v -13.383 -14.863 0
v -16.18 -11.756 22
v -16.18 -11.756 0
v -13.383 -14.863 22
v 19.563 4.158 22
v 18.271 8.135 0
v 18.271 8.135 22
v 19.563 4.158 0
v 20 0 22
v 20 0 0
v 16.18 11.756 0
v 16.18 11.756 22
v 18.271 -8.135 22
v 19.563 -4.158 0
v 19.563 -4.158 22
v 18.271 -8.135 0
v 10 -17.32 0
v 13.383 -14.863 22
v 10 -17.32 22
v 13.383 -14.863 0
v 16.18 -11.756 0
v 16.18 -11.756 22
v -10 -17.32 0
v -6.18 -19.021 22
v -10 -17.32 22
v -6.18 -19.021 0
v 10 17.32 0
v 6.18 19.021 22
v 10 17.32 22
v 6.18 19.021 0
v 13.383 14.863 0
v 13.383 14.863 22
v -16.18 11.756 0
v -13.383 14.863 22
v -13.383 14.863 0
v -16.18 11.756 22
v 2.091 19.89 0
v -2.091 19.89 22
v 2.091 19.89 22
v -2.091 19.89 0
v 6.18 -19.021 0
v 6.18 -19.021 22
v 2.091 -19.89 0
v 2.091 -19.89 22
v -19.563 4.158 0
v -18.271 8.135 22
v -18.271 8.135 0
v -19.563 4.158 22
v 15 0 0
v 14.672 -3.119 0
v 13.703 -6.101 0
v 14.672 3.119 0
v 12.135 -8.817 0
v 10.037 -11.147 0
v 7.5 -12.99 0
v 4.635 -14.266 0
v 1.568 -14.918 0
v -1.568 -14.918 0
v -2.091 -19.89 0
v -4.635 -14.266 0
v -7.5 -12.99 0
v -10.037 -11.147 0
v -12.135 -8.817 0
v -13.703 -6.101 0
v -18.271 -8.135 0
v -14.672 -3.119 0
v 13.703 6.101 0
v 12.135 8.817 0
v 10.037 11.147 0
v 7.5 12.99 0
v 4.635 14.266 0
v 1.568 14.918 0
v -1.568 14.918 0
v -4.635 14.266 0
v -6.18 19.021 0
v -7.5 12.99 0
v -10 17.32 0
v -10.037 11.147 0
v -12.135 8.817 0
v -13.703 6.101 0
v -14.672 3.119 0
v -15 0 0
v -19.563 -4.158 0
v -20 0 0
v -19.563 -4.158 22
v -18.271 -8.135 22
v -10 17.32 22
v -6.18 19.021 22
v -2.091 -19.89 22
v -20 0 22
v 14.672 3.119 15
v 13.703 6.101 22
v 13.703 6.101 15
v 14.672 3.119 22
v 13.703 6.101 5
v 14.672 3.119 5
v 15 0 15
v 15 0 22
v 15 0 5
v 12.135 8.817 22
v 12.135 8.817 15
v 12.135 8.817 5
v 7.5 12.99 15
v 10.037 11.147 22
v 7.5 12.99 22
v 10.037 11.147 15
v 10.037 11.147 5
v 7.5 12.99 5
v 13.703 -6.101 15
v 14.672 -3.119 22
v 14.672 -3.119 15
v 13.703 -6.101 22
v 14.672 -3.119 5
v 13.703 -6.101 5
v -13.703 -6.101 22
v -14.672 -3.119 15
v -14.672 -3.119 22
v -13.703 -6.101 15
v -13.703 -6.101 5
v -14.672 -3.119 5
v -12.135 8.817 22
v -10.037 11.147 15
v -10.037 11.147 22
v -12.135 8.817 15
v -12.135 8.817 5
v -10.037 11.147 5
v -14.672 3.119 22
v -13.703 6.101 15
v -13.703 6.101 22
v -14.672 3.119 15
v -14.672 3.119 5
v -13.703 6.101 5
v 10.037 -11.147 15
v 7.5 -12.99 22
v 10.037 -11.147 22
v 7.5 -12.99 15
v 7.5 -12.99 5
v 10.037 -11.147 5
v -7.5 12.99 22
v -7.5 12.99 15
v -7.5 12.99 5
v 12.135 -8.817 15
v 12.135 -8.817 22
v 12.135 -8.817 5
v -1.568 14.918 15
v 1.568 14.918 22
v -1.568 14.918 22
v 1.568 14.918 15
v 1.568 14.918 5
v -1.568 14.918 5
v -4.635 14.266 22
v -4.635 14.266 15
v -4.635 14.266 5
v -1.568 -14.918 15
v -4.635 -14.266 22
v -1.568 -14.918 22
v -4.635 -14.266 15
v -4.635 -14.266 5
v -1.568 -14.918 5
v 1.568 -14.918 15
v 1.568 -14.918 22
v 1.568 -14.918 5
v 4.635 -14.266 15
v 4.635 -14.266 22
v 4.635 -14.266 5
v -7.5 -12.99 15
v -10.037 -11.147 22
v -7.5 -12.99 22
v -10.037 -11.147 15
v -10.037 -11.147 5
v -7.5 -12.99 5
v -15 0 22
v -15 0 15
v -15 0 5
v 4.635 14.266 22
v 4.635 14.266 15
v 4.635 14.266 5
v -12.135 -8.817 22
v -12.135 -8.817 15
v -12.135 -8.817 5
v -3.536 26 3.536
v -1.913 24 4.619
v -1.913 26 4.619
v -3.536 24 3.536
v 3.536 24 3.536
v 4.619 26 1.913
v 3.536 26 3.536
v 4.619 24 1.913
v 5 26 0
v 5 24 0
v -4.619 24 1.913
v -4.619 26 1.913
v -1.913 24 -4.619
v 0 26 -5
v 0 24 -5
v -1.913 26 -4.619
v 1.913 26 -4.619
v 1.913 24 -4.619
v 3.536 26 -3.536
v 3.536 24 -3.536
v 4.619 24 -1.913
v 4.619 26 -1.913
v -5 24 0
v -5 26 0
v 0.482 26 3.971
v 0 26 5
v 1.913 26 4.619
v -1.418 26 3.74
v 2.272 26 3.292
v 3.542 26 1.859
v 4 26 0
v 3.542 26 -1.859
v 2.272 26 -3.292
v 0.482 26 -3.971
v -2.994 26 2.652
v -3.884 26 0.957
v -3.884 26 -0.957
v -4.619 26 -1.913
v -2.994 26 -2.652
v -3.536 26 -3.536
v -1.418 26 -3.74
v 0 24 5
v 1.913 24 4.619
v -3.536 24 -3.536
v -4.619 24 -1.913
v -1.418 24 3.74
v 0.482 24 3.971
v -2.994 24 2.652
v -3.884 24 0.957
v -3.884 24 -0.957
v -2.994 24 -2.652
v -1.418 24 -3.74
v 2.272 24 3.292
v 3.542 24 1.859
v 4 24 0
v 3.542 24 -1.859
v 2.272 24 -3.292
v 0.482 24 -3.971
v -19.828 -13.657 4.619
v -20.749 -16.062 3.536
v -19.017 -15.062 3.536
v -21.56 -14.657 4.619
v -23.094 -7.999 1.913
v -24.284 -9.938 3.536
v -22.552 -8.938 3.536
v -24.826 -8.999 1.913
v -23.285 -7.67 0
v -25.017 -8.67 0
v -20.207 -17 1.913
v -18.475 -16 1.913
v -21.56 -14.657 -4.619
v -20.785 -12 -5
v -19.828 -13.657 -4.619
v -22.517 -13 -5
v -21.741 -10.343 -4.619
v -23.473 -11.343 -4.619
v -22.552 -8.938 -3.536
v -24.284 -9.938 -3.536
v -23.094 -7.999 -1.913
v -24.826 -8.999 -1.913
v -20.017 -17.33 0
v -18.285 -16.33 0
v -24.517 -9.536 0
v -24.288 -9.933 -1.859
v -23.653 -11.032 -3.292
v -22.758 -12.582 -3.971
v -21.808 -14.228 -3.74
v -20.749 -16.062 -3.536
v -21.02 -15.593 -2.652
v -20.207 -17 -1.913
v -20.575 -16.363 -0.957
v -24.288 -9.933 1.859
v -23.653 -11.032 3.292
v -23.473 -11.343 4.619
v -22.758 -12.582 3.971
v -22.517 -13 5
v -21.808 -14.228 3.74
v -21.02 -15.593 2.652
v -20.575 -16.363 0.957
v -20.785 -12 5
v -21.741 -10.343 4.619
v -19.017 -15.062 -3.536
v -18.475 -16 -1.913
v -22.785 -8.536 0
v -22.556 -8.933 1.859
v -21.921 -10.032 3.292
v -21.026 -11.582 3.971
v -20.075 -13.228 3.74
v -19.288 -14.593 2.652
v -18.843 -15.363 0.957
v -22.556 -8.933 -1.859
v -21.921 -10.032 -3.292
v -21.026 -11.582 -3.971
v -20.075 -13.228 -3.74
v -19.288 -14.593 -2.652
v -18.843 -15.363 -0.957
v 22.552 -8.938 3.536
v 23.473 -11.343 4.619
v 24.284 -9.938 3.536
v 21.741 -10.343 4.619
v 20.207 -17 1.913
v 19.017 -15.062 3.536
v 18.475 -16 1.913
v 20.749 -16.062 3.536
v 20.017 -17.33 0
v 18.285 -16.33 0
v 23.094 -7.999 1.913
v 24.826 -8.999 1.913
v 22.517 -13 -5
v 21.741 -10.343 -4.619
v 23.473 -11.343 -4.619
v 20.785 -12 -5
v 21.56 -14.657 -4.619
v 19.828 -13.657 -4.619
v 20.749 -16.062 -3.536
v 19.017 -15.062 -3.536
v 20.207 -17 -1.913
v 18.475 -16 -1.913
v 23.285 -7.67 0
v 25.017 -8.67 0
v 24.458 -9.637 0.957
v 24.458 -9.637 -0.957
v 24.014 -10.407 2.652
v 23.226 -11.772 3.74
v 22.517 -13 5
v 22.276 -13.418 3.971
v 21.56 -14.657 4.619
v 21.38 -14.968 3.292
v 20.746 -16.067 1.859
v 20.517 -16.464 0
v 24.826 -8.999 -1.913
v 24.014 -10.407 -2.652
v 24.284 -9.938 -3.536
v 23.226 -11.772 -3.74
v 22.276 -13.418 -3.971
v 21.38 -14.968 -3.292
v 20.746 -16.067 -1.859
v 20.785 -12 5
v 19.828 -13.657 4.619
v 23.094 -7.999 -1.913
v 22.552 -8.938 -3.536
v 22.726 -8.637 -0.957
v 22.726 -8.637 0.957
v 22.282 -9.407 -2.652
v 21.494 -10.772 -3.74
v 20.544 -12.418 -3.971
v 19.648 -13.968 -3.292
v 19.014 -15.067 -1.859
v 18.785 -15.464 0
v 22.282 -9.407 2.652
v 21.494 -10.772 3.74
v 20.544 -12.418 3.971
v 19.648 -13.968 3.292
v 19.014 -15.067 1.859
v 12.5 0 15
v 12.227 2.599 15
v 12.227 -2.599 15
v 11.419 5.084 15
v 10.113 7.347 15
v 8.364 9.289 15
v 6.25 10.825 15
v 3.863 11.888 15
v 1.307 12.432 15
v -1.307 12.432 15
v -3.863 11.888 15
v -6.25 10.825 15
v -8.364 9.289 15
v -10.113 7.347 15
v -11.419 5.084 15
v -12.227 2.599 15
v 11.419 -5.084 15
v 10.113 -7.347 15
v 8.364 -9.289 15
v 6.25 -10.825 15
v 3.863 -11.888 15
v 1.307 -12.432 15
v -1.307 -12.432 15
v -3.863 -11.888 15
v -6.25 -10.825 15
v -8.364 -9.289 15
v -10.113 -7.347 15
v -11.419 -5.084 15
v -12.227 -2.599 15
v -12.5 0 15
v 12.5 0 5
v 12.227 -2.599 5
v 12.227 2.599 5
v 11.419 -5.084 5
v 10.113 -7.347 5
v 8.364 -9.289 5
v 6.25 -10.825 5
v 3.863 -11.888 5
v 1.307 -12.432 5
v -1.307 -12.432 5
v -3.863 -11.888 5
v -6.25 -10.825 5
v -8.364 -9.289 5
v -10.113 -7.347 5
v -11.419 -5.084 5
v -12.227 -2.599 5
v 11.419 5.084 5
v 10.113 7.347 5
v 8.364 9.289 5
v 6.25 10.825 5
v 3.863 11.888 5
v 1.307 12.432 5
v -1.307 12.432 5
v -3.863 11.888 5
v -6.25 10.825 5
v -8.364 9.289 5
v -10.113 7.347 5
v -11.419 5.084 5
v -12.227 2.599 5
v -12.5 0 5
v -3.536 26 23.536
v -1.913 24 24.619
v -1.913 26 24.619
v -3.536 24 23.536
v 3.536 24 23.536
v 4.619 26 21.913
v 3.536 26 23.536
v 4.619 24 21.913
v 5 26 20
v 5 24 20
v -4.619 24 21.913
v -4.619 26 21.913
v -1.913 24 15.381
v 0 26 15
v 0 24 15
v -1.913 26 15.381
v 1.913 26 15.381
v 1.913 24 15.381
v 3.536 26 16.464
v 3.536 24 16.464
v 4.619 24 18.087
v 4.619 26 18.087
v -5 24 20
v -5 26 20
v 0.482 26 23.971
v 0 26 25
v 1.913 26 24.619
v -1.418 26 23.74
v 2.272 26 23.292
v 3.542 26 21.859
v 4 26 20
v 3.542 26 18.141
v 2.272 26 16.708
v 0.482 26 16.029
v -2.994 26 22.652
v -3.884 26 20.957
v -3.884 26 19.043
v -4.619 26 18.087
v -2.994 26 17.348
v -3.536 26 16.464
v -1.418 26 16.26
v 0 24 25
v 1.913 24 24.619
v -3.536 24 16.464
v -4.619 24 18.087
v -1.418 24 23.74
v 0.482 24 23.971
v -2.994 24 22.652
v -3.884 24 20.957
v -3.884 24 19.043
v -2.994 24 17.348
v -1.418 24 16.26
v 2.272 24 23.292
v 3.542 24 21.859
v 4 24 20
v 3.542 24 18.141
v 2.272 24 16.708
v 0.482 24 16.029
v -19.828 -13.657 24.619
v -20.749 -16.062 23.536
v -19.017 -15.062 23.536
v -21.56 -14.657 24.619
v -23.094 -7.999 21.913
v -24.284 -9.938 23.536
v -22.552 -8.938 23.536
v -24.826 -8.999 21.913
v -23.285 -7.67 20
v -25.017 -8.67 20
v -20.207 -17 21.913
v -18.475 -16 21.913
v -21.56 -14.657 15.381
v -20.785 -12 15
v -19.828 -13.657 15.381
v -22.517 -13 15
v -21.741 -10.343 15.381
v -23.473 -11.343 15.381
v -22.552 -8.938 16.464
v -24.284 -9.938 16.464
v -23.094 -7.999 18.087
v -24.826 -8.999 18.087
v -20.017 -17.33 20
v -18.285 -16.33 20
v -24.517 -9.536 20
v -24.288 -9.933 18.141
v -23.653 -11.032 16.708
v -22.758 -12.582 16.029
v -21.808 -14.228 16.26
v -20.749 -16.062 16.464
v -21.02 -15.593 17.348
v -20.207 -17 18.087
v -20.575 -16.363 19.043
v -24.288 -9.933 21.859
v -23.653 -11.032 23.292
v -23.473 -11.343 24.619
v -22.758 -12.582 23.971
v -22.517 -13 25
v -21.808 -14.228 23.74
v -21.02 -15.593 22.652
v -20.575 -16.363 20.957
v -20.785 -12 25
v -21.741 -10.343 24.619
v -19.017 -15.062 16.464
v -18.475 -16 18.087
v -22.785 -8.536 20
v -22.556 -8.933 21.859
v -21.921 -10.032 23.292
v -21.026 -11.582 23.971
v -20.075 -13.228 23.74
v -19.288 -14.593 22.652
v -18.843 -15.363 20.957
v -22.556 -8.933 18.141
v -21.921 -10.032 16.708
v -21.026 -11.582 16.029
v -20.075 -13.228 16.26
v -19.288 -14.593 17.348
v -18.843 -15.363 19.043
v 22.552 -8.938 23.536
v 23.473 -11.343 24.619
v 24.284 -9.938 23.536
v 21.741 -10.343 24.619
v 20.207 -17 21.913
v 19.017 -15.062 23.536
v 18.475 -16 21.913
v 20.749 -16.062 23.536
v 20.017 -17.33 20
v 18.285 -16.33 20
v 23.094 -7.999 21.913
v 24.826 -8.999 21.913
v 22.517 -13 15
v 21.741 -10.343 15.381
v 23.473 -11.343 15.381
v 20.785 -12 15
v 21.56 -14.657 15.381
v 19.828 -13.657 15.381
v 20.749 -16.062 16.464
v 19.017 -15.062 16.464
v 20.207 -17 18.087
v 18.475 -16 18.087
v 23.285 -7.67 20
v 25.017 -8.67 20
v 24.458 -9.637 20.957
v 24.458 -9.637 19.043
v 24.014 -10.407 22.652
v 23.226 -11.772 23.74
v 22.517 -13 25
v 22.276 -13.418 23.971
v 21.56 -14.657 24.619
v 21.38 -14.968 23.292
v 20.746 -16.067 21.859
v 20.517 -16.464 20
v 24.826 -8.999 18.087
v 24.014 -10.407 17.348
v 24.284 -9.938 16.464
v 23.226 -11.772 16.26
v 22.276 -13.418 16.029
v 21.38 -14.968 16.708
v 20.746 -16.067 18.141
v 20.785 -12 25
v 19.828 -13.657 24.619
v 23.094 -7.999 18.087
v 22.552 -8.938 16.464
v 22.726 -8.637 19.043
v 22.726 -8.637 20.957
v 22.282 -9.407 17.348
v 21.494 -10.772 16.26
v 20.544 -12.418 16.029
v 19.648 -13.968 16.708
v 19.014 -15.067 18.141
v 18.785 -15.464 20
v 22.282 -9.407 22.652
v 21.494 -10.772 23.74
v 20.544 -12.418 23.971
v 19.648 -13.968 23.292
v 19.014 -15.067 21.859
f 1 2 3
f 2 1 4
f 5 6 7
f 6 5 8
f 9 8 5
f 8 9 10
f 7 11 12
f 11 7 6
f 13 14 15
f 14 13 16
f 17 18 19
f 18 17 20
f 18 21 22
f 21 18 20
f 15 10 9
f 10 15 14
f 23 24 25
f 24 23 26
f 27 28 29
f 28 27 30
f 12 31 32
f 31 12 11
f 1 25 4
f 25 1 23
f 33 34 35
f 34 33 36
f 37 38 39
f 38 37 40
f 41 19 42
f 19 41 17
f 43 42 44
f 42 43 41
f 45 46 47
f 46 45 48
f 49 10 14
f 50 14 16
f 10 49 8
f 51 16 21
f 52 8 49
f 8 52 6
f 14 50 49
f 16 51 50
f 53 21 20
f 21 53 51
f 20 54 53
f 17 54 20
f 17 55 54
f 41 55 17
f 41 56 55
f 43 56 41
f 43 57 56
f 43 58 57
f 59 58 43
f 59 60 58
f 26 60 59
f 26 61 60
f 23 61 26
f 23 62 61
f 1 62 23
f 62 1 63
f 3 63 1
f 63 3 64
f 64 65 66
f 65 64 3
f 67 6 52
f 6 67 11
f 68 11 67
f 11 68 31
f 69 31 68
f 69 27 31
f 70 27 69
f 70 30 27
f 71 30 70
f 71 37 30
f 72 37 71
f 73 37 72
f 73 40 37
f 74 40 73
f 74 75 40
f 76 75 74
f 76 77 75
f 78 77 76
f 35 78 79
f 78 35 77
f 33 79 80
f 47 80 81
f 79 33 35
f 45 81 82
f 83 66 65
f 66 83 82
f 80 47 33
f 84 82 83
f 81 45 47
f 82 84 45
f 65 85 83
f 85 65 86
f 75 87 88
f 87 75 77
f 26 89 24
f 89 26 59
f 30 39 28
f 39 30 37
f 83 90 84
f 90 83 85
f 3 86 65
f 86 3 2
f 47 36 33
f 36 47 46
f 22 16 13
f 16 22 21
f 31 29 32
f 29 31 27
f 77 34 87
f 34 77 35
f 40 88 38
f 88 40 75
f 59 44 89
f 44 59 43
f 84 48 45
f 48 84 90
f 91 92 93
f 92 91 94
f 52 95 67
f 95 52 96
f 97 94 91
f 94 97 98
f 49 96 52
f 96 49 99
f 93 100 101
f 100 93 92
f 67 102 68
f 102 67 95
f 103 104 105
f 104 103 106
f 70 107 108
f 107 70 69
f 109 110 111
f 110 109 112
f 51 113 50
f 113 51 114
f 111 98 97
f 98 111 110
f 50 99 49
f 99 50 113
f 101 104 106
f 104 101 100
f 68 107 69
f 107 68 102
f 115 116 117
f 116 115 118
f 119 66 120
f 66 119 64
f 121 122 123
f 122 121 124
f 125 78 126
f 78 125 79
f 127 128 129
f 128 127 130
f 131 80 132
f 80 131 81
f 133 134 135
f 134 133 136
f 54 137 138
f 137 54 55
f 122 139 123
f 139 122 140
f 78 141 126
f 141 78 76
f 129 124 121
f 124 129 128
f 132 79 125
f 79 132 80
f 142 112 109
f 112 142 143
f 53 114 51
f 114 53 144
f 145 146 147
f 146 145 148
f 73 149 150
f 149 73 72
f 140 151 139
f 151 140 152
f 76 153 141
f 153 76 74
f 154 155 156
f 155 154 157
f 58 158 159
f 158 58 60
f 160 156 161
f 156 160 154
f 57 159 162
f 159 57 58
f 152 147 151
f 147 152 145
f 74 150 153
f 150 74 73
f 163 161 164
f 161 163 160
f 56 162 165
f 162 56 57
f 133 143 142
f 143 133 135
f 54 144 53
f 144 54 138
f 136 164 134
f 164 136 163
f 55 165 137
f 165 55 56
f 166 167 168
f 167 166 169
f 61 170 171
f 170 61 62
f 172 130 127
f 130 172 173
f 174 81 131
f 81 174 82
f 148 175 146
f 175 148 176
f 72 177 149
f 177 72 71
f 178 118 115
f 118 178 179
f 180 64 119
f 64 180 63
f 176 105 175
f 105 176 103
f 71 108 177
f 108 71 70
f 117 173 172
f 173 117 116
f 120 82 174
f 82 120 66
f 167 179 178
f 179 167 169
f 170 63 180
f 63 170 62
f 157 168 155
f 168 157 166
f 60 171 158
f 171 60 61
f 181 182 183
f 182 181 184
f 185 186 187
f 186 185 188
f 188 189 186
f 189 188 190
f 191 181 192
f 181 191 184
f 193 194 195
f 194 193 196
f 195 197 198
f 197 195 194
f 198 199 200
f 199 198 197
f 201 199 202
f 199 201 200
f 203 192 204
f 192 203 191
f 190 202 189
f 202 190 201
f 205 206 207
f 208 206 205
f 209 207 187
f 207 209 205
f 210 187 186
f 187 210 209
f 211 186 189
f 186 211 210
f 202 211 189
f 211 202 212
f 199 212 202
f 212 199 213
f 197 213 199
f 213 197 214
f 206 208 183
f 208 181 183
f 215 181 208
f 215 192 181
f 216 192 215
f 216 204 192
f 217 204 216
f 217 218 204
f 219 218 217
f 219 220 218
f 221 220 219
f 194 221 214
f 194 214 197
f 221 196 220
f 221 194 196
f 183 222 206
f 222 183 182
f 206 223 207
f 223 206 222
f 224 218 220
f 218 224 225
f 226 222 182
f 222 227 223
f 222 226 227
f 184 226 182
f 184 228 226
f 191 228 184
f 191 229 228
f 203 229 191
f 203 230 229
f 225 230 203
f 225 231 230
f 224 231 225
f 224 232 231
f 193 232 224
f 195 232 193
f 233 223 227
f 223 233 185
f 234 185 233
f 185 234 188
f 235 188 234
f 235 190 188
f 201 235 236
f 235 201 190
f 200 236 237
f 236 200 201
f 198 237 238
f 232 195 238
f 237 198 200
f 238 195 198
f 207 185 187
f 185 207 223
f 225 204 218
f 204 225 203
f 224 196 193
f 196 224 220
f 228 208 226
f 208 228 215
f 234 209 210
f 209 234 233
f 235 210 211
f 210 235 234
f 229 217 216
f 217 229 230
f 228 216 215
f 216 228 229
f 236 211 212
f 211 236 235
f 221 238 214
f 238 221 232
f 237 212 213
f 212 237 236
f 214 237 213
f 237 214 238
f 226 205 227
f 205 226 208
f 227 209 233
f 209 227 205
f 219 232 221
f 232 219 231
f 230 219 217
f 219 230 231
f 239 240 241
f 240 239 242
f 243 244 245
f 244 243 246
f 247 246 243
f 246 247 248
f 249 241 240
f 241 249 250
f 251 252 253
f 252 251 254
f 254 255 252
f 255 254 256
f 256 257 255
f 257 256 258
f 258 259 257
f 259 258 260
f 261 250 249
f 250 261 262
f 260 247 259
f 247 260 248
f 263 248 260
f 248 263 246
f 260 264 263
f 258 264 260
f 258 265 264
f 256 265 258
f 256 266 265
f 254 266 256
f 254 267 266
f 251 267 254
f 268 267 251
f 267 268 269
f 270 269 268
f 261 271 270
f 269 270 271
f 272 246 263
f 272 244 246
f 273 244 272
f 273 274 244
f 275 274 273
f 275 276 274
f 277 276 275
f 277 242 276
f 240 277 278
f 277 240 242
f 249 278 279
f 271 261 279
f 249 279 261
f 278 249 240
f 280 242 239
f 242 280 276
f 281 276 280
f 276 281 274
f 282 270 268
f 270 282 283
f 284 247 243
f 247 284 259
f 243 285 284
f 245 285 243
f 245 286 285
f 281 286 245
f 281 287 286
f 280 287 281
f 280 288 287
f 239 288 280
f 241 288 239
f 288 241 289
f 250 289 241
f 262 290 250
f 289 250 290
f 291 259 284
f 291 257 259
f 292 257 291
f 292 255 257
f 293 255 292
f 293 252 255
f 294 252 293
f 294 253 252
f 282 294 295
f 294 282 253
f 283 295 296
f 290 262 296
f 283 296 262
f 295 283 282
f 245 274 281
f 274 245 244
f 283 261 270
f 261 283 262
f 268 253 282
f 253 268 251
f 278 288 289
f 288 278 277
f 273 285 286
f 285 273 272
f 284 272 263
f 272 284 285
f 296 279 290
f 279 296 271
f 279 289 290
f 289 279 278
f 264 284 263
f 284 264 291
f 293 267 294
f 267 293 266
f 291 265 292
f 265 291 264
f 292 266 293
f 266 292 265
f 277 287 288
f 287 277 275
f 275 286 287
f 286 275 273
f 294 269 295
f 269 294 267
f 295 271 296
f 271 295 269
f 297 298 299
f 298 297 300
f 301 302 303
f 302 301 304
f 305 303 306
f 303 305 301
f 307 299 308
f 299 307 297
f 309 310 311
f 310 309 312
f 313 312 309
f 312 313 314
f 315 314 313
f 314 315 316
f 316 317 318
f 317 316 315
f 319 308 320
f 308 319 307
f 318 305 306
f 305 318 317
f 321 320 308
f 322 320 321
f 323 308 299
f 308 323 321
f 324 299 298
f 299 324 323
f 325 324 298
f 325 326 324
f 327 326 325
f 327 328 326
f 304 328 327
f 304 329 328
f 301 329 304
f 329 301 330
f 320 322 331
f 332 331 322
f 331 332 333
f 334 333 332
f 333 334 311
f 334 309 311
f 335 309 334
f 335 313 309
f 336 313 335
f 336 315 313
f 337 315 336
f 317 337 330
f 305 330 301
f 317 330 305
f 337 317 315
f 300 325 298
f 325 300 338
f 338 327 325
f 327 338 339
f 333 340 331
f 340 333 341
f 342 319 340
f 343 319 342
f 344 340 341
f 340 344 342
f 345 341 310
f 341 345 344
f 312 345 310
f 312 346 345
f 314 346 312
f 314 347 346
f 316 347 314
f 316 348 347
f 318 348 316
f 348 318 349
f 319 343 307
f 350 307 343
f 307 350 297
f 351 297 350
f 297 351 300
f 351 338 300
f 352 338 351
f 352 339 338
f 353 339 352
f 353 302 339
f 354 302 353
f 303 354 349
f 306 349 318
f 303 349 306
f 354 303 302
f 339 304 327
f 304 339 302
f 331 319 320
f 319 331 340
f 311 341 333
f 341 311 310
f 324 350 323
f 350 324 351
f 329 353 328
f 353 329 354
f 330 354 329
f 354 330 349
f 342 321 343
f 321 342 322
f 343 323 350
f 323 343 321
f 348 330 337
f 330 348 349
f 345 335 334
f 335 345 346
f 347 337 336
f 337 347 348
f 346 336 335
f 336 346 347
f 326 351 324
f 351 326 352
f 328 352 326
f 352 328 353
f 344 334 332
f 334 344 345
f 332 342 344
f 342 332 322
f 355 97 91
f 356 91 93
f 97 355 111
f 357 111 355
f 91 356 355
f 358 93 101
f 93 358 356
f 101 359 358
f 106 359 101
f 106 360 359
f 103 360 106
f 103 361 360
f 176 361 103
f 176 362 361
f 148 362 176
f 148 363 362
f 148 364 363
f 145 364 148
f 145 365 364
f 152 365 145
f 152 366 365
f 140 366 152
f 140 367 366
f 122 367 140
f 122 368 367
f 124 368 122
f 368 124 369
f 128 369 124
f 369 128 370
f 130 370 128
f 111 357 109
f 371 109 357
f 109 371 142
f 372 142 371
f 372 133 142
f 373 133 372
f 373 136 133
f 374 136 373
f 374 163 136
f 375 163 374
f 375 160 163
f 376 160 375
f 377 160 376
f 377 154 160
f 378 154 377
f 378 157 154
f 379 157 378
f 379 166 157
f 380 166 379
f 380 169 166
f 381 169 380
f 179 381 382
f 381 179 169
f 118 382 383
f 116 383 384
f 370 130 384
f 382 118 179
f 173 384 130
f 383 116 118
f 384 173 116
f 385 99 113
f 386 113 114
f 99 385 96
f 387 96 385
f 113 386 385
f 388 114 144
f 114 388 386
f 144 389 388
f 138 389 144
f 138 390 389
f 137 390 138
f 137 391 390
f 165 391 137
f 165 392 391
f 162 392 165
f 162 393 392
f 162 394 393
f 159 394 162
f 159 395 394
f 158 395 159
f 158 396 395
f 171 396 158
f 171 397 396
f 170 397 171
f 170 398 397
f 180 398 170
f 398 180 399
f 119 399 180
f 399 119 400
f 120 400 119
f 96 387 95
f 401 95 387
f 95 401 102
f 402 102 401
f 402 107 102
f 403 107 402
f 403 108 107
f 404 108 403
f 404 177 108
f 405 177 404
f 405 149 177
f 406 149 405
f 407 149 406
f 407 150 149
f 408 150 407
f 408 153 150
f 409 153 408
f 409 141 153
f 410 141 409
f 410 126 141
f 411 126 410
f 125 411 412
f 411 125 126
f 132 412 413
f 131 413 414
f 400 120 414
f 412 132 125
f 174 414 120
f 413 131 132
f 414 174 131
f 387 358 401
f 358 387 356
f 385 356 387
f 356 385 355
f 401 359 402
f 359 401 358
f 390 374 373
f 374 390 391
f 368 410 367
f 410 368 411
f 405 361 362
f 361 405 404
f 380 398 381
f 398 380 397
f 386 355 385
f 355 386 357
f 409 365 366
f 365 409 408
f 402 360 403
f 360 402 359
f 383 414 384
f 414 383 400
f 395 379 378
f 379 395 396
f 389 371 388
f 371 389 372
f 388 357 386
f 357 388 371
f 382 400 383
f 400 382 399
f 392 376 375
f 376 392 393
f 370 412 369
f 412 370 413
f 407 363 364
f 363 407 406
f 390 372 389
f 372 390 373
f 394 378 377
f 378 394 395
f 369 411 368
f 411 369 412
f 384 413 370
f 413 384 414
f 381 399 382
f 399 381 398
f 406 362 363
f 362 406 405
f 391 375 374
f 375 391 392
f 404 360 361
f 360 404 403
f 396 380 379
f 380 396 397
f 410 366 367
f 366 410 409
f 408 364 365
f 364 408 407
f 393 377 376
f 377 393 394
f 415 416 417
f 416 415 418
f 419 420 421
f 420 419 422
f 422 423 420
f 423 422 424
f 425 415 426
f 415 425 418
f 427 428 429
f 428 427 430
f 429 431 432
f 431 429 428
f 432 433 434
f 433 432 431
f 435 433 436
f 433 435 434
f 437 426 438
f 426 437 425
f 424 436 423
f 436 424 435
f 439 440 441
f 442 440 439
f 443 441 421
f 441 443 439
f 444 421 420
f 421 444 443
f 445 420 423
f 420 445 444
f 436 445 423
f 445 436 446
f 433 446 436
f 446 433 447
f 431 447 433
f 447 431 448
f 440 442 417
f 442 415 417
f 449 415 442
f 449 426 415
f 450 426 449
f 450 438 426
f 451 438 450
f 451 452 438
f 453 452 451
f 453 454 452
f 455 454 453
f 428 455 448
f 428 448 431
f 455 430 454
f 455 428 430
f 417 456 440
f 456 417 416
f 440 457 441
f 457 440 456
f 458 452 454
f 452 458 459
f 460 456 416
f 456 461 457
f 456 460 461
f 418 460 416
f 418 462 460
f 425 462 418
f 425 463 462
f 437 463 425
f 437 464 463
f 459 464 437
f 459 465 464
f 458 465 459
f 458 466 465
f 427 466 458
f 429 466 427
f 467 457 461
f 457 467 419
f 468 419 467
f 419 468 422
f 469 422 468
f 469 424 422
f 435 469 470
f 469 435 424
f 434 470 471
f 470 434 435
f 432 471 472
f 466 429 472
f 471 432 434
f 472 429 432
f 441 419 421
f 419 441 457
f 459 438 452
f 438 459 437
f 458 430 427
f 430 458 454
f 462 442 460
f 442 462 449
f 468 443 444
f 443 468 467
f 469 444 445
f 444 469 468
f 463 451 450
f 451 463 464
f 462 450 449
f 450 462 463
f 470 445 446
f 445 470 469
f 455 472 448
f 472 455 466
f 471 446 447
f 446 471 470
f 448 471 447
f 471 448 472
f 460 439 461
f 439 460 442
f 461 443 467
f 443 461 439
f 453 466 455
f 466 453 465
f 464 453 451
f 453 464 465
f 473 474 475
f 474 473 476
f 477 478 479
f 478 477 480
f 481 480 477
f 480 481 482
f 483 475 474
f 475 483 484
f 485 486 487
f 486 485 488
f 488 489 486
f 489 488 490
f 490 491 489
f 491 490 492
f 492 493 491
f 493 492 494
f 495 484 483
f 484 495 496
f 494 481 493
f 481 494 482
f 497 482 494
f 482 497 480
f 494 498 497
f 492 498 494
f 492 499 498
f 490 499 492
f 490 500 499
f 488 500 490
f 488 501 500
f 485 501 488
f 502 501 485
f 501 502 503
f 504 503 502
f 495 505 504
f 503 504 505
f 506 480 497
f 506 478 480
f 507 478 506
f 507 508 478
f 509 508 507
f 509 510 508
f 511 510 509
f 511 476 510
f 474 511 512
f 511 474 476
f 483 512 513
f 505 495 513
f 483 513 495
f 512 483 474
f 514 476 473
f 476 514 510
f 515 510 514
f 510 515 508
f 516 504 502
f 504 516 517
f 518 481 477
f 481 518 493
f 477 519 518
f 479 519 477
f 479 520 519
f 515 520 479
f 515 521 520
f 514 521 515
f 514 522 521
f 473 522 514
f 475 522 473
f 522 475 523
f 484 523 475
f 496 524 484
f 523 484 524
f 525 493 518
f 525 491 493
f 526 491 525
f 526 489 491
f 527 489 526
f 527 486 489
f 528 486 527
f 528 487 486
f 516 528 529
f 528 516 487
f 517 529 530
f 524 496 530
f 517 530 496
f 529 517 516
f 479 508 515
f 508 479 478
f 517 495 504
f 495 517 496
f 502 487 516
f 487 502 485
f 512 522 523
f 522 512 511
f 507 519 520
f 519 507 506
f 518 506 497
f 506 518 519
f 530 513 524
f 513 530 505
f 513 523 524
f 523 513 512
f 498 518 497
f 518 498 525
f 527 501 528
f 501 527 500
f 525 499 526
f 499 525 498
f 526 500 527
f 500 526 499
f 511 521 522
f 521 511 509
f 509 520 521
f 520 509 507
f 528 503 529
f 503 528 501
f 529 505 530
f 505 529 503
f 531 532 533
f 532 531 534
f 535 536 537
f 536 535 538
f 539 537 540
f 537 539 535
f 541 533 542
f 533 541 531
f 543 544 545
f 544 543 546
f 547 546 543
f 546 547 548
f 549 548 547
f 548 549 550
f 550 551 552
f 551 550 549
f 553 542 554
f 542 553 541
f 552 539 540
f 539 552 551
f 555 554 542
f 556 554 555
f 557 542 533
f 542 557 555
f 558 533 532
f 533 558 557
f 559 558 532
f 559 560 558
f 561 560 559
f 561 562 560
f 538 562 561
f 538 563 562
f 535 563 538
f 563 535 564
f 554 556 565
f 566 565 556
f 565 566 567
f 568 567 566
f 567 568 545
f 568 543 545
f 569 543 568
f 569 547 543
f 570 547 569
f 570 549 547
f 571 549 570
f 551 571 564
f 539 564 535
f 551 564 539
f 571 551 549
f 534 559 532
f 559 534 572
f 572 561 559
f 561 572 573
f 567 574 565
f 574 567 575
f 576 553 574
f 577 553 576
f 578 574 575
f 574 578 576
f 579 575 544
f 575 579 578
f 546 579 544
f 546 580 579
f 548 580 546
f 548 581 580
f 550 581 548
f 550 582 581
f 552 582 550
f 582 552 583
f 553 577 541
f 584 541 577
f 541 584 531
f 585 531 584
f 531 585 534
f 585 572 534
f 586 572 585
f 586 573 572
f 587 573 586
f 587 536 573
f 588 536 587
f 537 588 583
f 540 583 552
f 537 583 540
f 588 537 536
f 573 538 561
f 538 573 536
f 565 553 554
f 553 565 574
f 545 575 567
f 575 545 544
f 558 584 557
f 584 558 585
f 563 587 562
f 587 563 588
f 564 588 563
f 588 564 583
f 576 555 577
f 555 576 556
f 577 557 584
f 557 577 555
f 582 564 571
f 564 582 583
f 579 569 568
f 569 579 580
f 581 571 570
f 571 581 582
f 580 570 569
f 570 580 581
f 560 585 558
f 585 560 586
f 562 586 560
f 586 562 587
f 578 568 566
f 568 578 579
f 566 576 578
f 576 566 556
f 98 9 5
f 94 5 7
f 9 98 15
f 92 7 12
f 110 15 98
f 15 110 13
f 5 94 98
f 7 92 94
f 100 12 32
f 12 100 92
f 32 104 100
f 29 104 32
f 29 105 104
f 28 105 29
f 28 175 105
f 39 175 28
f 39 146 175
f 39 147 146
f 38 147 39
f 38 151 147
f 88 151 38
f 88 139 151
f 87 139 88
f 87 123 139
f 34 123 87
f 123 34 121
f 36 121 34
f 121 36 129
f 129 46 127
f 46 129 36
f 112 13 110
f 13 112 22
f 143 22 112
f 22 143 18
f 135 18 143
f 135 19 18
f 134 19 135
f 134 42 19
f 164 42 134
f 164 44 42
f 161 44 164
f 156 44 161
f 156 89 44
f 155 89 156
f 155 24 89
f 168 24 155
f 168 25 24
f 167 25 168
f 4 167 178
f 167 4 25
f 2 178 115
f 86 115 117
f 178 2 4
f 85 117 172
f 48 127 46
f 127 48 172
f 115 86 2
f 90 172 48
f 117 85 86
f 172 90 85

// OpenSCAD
// Parameters for the model
main_body_outer_diameter = 40;
main_body_inner_diameter = 30;
main_body_height = 20;
mounting_loop_radius = 5;
mounting_loop_thickness = 2;
mounting_loop_offset = main_body_outer_diameter / 2 + mounting_loop_radius;
end_cap_thickness = 2;
inner_ring_outer_diameter = main_body_inner_diameter;
inner_ring_inner_diameter = 25;
inner_ring_height = 10;

// Function to create a mounting loop
module mounting_loop() {
    translate([0, mounting_loop_offset, 0])
        rotate([90, 0, 0])
            difference() {
                cylinder(r=mounting_loop_radius, h=mounting_loop_thickness, center=true);
                cylinder(r=mounting_loop_radius - 1, h=mounting_loop_thickness + 1, center=true);
            }
}

// Main body
module main_body() {
    difference() {
        cylinder(r=main_body_outer_diameter / 2, h=main_body_height, center=false);
        translate([0, 0, -1])
            cylinder(r=main_body_inner_diameter / 2, h=main_body_height + 2, center=false);
    }
    // Add mounting loops
    for (i = [0, 120, 240]) {
        rotate([0, 0, i])
            mounting_loop();
    }
}

// End cap
module end_cap() {
    difference() {
        cylinder(r=main_body_outer_diameter / 2, h=end_cap_thickness, center=false);
        translate([0, 0, -1])
            cylinder(r=main_body_inner_diameter / 2, h=end_cap_thickness + 2, center=false);
    }
    // Add mounting loops
    for (i = [0, 120, 240]) {
        rotate([0, 0, i])
            mounting_loop();
    }
}

// Inner cylindrical ring
module inner_cylindrical_ring() {
    difference() {
        cylinder(r=inner_ring_outer_diameter / 2, h=inner_ring_height, center=false);
        translate([0, 0, -1])
            cylinder(r=inner_ring_inner_diameter / 2, h=inner_ring_height + 2, center=false);
    }
}

// Assembly
module assembly() {
    // Layer 3: Main body
    main_body();

    // Layer 2: Inner cylindrical ring
    translate([0, 0, 5])
        inner_cylindrical_ring();

    // Layer 1: End cap
    translate([0, 0, main_body_height])
        end_cap();
}

// Render the assembly
assembly();
